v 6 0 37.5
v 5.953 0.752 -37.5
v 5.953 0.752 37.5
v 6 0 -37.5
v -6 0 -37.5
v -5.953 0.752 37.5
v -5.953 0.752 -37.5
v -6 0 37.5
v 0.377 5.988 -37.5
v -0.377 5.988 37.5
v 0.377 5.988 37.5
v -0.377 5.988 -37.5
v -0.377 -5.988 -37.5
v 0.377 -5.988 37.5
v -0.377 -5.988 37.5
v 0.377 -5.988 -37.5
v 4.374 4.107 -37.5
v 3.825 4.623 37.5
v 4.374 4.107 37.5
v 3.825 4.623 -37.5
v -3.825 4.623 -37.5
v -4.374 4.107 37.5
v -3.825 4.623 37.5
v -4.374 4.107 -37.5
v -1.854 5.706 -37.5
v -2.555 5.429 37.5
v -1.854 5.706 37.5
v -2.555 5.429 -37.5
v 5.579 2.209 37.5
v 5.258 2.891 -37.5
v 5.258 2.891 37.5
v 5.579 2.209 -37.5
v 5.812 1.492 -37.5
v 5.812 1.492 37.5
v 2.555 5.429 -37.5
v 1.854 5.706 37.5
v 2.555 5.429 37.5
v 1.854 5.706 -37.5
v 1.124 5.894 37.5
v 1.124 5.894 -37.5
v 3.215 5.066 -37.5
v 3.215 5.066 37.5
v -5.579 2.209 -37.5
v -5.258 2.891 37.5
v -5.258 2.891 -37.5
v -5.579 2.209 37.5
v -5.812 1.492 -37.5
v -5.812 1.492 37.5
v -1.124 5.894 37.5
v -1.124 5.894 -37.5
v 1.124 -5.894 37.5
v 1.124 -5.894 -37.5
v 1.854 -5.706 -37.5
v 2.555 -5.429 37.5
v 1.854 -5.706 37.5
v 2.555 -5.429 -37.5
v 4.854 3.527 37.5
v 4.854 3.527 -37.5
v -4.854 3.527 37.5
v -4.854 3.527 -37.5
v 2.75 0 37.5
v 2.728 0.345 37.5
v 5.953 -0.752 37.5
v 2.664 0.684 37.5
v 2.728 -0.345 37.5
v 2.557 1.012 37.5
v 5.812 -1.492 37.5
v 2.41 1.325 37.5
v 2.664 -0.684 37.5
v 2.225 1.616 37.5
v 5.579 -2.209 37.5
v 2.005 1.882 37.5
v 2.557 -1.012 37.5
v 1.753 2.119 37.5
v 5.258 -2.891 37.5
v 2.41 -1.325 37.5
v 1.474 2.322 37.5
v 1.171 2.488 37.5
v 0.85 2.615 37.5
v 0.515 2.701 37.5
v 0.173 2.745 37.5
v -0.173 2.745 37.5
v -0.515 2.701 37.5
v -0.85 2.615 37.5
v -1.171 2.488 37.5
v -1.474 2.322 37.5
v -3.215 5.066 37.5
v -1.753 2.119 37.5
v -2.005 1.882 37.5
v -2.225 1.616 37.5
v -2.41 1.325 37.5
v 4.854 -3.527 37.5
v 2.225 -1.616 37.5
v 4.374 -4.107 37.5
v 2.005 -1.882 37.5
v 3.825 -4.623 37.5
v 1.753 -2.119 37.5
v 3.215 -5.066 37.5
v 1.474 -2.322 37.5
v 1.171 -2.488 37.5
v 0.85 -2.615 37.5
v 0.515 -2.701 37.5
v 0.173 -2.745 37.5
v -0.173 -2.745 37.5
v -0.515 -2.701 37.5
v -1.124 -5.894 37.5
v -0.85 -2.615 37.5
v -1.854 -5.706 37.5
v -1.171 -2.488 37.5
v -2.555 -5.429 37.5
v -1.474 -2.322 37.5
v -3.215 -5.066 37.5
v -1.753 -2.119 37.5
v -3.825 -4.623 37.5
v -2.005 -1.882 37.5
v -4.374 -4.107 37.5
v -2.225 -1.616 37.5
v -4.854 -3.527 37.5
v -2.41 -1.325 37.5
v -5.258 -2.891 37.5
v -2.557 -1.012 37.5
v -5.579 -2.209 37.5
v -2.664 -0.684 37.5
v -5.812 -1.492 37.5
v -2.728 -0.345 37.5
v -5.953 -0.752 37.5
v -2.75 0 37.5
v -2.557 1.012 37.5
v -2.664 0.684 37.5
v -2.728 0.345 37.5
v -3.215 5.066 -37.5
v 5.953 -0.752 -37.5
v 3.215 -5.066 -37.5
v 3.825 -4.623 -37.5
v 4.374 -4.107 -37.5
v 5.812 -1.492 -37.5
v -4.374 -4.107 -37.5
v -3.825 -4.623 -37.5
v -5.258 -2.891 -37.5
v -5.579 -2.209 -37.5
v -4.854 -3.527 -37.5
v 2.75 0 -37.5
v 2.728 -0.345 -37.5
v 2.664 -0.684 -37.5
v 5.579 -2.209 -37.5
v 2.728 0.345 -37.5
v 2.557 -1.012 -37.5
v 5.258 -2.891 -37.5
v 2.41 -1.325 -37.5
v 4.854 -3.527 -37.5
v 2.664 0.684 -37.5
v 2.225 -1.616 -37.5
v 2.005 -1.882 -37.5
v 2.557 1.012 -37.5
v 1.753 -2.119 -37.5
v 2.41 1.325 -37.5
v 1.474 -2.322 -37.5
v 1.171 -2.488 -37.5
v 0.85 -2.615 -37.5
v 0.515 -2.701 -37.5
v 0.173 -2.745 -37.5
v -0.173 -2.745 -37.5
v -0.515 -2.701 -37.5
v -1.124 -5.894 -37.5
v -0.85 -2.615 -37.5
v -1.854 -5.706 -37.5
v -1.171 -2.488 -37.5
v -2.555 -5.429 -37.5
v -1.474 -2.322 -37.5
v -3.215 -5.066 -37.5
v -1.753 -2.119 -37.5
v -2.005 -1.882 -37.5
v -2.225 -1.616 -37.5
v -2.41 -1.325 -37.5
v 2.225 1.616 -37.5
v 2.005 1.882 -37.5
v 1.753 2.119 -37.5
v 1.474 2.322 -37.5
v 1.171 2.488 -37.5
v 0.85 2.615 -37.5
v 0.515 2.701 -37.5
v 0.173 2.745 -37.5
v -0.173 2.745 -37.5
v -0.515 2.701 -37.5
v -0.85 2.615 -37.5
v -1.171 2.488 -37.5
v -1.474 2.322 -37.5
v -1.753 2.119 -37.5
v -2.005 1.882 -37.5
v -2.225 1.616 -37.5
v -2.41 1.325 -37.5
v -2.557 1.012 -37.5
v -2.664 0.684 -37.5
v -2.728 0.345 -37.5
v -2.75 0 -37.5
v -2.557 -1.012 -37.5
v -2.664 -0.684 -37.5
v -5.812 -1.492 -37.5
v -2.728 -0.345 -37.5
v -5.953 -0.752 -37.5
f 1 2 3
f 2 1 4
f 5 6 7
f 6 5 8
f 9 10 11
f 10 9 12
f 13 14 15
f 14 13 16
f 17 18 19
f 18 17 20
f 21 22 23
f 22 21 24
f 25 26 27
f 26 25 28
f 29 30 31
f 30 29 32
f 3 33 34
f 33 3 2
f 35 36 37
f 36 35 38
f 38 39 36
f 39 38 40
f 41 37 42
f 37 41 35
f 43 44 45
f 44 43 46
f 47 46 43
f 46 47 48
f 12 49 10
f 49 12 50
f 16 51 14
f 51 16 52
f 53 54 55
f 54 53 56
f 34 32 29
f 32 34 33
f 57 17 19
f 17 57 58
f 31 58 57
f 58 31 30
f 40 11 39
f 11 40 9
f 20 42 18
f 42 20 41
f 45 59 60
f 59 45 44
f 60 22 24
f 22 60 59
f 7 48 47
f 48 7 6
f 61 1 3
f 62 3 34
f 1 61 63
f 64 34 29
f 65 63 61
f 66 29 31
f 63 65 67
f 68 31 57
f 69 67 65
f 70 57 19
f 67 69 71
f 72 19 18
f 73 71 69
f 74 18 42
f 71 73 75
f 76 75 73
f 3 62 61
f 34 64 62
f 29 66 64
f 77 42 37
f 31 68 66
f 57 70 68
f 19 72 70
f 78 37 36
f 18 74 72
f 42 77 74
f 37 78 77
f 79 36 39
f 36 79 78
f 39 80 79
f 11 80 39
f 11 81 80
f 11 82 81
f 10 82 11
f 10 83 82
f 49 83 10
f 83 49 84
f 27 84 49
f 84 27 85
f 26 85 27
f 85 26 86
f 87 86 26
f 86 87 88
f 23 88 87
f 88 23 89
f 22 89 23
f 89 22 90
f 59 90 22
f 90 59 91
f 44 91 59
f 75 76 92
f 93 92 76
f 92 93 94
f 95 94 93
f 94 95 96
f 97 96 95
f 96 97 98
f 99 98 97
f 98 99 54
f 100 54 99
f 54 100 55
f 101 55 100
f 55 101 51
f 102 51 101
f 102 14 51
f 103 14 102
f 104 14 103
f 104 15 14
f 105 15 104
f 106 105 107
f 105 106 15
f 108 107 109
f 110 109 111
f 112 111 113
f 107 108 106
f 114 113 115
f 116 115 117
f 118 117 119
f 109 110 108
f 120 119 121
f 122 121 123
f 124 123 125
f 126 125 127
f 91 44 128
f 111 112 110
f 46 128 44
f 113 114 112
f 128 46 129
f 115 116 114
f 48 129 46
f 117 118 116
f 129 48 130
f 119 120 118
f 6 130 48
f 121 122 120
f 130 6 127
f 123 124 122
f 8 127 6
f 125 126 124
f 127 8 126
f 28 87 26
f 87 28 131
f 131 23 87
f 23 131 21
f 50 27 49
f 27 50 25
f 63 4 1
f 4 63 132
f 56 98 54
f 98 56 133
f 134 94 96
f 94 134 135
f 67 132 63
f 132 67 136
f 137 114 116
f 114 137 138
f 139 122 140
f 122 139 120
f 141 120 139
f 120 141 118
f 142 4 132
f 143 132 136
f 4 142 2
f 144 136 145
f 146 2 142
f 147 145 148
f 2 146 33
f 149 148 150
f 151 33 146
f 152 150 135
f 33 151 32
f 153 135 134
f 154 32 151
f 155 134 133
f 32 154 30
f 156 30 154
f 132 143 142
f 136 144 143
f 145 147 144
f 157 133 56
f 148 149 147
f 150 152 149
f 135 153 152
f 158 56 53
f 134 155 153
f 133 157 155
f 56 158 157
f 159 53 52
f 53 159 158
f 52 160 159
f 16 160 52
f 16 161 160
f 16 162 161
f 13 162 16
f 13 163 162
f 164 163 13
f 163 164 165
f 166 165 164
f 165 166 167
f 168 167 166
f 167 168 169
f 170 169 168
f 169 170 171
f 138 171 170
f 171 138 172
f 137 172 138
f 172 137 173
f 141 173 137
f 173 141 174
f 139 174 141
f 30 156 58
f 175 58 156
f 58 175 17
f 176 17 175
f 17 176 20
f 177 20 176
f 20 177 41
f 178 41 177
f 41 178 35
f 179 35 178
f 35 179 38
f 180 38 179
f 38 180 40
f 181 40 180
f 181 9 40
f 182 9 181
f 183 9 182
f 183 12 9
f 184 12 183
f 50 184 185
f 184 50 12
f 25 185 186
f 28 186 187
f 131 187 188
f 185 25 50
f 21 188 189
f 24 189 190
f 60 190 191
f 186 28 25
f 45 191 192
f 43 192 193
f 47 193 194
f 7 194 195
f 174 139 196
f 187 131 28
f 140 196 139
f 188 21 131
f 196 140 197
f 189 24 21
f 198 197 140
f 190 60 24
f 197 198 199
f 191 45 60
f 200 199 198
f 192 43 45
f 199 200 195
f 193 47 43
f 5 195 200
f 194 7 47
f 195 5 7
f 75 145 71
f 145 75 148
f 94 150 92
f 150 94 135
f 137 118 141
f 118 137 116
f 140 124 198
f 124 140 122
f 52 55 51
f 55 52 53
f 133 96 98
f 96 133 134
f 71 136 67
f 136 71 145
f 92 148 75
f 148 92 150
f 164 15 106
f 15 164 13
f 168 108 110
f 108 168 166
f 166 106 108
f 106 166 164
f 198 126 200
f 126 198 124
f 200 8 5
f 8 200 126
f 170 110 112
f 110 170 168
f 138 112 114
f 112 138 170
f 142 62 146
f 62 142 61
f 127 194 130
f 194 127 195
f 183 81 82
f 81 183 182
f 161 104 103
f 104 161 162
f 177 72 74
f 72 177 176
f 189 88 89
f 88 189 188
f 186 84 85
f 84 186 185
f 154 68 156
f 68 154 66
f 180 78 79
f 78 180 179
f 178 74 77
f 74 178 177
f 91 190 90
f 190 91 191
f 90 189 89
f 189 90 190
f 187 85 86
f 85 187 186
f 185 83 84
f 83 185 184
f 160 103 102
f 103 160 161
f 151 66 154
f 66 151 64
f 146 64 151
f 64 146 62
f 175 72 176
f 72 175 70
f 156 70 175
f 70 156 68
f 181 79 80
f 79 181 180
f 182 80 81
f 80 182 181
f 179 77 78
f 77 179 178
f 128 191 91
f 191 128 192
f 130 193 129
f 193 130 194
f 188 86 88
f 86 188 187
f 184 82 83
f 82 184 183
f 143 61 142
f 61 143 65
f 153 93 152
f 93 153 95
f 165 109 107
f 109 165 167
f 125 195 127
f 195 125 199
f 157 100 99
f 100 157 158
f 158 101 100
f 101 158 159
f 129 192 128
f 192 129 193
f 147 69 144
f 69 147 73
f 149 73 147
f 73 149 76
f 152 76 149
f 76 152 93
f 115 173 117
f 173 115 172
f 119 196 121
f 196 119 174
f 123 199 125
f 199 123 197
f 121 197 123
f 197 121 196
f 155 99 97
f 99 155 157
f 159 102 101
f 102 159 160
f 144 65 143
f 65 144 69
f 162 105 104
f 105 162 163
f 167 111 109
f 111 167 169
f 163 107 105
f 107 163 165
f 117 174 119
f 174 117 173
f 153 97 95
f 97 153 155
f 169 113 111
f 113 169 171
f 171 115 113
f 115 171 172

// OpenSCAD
$fn = 50;


difference() {
	union() {
		translate(v = [0, 0, -37.5000000000]) {
			cylinder(h = 75, r = 6.0000000000);
		}
	}
	union() {
		translate(v = [0, 0, -100.0000000000]) {
			cylinder(h = 200, r = 2.7500000000);
		}
	}
}
